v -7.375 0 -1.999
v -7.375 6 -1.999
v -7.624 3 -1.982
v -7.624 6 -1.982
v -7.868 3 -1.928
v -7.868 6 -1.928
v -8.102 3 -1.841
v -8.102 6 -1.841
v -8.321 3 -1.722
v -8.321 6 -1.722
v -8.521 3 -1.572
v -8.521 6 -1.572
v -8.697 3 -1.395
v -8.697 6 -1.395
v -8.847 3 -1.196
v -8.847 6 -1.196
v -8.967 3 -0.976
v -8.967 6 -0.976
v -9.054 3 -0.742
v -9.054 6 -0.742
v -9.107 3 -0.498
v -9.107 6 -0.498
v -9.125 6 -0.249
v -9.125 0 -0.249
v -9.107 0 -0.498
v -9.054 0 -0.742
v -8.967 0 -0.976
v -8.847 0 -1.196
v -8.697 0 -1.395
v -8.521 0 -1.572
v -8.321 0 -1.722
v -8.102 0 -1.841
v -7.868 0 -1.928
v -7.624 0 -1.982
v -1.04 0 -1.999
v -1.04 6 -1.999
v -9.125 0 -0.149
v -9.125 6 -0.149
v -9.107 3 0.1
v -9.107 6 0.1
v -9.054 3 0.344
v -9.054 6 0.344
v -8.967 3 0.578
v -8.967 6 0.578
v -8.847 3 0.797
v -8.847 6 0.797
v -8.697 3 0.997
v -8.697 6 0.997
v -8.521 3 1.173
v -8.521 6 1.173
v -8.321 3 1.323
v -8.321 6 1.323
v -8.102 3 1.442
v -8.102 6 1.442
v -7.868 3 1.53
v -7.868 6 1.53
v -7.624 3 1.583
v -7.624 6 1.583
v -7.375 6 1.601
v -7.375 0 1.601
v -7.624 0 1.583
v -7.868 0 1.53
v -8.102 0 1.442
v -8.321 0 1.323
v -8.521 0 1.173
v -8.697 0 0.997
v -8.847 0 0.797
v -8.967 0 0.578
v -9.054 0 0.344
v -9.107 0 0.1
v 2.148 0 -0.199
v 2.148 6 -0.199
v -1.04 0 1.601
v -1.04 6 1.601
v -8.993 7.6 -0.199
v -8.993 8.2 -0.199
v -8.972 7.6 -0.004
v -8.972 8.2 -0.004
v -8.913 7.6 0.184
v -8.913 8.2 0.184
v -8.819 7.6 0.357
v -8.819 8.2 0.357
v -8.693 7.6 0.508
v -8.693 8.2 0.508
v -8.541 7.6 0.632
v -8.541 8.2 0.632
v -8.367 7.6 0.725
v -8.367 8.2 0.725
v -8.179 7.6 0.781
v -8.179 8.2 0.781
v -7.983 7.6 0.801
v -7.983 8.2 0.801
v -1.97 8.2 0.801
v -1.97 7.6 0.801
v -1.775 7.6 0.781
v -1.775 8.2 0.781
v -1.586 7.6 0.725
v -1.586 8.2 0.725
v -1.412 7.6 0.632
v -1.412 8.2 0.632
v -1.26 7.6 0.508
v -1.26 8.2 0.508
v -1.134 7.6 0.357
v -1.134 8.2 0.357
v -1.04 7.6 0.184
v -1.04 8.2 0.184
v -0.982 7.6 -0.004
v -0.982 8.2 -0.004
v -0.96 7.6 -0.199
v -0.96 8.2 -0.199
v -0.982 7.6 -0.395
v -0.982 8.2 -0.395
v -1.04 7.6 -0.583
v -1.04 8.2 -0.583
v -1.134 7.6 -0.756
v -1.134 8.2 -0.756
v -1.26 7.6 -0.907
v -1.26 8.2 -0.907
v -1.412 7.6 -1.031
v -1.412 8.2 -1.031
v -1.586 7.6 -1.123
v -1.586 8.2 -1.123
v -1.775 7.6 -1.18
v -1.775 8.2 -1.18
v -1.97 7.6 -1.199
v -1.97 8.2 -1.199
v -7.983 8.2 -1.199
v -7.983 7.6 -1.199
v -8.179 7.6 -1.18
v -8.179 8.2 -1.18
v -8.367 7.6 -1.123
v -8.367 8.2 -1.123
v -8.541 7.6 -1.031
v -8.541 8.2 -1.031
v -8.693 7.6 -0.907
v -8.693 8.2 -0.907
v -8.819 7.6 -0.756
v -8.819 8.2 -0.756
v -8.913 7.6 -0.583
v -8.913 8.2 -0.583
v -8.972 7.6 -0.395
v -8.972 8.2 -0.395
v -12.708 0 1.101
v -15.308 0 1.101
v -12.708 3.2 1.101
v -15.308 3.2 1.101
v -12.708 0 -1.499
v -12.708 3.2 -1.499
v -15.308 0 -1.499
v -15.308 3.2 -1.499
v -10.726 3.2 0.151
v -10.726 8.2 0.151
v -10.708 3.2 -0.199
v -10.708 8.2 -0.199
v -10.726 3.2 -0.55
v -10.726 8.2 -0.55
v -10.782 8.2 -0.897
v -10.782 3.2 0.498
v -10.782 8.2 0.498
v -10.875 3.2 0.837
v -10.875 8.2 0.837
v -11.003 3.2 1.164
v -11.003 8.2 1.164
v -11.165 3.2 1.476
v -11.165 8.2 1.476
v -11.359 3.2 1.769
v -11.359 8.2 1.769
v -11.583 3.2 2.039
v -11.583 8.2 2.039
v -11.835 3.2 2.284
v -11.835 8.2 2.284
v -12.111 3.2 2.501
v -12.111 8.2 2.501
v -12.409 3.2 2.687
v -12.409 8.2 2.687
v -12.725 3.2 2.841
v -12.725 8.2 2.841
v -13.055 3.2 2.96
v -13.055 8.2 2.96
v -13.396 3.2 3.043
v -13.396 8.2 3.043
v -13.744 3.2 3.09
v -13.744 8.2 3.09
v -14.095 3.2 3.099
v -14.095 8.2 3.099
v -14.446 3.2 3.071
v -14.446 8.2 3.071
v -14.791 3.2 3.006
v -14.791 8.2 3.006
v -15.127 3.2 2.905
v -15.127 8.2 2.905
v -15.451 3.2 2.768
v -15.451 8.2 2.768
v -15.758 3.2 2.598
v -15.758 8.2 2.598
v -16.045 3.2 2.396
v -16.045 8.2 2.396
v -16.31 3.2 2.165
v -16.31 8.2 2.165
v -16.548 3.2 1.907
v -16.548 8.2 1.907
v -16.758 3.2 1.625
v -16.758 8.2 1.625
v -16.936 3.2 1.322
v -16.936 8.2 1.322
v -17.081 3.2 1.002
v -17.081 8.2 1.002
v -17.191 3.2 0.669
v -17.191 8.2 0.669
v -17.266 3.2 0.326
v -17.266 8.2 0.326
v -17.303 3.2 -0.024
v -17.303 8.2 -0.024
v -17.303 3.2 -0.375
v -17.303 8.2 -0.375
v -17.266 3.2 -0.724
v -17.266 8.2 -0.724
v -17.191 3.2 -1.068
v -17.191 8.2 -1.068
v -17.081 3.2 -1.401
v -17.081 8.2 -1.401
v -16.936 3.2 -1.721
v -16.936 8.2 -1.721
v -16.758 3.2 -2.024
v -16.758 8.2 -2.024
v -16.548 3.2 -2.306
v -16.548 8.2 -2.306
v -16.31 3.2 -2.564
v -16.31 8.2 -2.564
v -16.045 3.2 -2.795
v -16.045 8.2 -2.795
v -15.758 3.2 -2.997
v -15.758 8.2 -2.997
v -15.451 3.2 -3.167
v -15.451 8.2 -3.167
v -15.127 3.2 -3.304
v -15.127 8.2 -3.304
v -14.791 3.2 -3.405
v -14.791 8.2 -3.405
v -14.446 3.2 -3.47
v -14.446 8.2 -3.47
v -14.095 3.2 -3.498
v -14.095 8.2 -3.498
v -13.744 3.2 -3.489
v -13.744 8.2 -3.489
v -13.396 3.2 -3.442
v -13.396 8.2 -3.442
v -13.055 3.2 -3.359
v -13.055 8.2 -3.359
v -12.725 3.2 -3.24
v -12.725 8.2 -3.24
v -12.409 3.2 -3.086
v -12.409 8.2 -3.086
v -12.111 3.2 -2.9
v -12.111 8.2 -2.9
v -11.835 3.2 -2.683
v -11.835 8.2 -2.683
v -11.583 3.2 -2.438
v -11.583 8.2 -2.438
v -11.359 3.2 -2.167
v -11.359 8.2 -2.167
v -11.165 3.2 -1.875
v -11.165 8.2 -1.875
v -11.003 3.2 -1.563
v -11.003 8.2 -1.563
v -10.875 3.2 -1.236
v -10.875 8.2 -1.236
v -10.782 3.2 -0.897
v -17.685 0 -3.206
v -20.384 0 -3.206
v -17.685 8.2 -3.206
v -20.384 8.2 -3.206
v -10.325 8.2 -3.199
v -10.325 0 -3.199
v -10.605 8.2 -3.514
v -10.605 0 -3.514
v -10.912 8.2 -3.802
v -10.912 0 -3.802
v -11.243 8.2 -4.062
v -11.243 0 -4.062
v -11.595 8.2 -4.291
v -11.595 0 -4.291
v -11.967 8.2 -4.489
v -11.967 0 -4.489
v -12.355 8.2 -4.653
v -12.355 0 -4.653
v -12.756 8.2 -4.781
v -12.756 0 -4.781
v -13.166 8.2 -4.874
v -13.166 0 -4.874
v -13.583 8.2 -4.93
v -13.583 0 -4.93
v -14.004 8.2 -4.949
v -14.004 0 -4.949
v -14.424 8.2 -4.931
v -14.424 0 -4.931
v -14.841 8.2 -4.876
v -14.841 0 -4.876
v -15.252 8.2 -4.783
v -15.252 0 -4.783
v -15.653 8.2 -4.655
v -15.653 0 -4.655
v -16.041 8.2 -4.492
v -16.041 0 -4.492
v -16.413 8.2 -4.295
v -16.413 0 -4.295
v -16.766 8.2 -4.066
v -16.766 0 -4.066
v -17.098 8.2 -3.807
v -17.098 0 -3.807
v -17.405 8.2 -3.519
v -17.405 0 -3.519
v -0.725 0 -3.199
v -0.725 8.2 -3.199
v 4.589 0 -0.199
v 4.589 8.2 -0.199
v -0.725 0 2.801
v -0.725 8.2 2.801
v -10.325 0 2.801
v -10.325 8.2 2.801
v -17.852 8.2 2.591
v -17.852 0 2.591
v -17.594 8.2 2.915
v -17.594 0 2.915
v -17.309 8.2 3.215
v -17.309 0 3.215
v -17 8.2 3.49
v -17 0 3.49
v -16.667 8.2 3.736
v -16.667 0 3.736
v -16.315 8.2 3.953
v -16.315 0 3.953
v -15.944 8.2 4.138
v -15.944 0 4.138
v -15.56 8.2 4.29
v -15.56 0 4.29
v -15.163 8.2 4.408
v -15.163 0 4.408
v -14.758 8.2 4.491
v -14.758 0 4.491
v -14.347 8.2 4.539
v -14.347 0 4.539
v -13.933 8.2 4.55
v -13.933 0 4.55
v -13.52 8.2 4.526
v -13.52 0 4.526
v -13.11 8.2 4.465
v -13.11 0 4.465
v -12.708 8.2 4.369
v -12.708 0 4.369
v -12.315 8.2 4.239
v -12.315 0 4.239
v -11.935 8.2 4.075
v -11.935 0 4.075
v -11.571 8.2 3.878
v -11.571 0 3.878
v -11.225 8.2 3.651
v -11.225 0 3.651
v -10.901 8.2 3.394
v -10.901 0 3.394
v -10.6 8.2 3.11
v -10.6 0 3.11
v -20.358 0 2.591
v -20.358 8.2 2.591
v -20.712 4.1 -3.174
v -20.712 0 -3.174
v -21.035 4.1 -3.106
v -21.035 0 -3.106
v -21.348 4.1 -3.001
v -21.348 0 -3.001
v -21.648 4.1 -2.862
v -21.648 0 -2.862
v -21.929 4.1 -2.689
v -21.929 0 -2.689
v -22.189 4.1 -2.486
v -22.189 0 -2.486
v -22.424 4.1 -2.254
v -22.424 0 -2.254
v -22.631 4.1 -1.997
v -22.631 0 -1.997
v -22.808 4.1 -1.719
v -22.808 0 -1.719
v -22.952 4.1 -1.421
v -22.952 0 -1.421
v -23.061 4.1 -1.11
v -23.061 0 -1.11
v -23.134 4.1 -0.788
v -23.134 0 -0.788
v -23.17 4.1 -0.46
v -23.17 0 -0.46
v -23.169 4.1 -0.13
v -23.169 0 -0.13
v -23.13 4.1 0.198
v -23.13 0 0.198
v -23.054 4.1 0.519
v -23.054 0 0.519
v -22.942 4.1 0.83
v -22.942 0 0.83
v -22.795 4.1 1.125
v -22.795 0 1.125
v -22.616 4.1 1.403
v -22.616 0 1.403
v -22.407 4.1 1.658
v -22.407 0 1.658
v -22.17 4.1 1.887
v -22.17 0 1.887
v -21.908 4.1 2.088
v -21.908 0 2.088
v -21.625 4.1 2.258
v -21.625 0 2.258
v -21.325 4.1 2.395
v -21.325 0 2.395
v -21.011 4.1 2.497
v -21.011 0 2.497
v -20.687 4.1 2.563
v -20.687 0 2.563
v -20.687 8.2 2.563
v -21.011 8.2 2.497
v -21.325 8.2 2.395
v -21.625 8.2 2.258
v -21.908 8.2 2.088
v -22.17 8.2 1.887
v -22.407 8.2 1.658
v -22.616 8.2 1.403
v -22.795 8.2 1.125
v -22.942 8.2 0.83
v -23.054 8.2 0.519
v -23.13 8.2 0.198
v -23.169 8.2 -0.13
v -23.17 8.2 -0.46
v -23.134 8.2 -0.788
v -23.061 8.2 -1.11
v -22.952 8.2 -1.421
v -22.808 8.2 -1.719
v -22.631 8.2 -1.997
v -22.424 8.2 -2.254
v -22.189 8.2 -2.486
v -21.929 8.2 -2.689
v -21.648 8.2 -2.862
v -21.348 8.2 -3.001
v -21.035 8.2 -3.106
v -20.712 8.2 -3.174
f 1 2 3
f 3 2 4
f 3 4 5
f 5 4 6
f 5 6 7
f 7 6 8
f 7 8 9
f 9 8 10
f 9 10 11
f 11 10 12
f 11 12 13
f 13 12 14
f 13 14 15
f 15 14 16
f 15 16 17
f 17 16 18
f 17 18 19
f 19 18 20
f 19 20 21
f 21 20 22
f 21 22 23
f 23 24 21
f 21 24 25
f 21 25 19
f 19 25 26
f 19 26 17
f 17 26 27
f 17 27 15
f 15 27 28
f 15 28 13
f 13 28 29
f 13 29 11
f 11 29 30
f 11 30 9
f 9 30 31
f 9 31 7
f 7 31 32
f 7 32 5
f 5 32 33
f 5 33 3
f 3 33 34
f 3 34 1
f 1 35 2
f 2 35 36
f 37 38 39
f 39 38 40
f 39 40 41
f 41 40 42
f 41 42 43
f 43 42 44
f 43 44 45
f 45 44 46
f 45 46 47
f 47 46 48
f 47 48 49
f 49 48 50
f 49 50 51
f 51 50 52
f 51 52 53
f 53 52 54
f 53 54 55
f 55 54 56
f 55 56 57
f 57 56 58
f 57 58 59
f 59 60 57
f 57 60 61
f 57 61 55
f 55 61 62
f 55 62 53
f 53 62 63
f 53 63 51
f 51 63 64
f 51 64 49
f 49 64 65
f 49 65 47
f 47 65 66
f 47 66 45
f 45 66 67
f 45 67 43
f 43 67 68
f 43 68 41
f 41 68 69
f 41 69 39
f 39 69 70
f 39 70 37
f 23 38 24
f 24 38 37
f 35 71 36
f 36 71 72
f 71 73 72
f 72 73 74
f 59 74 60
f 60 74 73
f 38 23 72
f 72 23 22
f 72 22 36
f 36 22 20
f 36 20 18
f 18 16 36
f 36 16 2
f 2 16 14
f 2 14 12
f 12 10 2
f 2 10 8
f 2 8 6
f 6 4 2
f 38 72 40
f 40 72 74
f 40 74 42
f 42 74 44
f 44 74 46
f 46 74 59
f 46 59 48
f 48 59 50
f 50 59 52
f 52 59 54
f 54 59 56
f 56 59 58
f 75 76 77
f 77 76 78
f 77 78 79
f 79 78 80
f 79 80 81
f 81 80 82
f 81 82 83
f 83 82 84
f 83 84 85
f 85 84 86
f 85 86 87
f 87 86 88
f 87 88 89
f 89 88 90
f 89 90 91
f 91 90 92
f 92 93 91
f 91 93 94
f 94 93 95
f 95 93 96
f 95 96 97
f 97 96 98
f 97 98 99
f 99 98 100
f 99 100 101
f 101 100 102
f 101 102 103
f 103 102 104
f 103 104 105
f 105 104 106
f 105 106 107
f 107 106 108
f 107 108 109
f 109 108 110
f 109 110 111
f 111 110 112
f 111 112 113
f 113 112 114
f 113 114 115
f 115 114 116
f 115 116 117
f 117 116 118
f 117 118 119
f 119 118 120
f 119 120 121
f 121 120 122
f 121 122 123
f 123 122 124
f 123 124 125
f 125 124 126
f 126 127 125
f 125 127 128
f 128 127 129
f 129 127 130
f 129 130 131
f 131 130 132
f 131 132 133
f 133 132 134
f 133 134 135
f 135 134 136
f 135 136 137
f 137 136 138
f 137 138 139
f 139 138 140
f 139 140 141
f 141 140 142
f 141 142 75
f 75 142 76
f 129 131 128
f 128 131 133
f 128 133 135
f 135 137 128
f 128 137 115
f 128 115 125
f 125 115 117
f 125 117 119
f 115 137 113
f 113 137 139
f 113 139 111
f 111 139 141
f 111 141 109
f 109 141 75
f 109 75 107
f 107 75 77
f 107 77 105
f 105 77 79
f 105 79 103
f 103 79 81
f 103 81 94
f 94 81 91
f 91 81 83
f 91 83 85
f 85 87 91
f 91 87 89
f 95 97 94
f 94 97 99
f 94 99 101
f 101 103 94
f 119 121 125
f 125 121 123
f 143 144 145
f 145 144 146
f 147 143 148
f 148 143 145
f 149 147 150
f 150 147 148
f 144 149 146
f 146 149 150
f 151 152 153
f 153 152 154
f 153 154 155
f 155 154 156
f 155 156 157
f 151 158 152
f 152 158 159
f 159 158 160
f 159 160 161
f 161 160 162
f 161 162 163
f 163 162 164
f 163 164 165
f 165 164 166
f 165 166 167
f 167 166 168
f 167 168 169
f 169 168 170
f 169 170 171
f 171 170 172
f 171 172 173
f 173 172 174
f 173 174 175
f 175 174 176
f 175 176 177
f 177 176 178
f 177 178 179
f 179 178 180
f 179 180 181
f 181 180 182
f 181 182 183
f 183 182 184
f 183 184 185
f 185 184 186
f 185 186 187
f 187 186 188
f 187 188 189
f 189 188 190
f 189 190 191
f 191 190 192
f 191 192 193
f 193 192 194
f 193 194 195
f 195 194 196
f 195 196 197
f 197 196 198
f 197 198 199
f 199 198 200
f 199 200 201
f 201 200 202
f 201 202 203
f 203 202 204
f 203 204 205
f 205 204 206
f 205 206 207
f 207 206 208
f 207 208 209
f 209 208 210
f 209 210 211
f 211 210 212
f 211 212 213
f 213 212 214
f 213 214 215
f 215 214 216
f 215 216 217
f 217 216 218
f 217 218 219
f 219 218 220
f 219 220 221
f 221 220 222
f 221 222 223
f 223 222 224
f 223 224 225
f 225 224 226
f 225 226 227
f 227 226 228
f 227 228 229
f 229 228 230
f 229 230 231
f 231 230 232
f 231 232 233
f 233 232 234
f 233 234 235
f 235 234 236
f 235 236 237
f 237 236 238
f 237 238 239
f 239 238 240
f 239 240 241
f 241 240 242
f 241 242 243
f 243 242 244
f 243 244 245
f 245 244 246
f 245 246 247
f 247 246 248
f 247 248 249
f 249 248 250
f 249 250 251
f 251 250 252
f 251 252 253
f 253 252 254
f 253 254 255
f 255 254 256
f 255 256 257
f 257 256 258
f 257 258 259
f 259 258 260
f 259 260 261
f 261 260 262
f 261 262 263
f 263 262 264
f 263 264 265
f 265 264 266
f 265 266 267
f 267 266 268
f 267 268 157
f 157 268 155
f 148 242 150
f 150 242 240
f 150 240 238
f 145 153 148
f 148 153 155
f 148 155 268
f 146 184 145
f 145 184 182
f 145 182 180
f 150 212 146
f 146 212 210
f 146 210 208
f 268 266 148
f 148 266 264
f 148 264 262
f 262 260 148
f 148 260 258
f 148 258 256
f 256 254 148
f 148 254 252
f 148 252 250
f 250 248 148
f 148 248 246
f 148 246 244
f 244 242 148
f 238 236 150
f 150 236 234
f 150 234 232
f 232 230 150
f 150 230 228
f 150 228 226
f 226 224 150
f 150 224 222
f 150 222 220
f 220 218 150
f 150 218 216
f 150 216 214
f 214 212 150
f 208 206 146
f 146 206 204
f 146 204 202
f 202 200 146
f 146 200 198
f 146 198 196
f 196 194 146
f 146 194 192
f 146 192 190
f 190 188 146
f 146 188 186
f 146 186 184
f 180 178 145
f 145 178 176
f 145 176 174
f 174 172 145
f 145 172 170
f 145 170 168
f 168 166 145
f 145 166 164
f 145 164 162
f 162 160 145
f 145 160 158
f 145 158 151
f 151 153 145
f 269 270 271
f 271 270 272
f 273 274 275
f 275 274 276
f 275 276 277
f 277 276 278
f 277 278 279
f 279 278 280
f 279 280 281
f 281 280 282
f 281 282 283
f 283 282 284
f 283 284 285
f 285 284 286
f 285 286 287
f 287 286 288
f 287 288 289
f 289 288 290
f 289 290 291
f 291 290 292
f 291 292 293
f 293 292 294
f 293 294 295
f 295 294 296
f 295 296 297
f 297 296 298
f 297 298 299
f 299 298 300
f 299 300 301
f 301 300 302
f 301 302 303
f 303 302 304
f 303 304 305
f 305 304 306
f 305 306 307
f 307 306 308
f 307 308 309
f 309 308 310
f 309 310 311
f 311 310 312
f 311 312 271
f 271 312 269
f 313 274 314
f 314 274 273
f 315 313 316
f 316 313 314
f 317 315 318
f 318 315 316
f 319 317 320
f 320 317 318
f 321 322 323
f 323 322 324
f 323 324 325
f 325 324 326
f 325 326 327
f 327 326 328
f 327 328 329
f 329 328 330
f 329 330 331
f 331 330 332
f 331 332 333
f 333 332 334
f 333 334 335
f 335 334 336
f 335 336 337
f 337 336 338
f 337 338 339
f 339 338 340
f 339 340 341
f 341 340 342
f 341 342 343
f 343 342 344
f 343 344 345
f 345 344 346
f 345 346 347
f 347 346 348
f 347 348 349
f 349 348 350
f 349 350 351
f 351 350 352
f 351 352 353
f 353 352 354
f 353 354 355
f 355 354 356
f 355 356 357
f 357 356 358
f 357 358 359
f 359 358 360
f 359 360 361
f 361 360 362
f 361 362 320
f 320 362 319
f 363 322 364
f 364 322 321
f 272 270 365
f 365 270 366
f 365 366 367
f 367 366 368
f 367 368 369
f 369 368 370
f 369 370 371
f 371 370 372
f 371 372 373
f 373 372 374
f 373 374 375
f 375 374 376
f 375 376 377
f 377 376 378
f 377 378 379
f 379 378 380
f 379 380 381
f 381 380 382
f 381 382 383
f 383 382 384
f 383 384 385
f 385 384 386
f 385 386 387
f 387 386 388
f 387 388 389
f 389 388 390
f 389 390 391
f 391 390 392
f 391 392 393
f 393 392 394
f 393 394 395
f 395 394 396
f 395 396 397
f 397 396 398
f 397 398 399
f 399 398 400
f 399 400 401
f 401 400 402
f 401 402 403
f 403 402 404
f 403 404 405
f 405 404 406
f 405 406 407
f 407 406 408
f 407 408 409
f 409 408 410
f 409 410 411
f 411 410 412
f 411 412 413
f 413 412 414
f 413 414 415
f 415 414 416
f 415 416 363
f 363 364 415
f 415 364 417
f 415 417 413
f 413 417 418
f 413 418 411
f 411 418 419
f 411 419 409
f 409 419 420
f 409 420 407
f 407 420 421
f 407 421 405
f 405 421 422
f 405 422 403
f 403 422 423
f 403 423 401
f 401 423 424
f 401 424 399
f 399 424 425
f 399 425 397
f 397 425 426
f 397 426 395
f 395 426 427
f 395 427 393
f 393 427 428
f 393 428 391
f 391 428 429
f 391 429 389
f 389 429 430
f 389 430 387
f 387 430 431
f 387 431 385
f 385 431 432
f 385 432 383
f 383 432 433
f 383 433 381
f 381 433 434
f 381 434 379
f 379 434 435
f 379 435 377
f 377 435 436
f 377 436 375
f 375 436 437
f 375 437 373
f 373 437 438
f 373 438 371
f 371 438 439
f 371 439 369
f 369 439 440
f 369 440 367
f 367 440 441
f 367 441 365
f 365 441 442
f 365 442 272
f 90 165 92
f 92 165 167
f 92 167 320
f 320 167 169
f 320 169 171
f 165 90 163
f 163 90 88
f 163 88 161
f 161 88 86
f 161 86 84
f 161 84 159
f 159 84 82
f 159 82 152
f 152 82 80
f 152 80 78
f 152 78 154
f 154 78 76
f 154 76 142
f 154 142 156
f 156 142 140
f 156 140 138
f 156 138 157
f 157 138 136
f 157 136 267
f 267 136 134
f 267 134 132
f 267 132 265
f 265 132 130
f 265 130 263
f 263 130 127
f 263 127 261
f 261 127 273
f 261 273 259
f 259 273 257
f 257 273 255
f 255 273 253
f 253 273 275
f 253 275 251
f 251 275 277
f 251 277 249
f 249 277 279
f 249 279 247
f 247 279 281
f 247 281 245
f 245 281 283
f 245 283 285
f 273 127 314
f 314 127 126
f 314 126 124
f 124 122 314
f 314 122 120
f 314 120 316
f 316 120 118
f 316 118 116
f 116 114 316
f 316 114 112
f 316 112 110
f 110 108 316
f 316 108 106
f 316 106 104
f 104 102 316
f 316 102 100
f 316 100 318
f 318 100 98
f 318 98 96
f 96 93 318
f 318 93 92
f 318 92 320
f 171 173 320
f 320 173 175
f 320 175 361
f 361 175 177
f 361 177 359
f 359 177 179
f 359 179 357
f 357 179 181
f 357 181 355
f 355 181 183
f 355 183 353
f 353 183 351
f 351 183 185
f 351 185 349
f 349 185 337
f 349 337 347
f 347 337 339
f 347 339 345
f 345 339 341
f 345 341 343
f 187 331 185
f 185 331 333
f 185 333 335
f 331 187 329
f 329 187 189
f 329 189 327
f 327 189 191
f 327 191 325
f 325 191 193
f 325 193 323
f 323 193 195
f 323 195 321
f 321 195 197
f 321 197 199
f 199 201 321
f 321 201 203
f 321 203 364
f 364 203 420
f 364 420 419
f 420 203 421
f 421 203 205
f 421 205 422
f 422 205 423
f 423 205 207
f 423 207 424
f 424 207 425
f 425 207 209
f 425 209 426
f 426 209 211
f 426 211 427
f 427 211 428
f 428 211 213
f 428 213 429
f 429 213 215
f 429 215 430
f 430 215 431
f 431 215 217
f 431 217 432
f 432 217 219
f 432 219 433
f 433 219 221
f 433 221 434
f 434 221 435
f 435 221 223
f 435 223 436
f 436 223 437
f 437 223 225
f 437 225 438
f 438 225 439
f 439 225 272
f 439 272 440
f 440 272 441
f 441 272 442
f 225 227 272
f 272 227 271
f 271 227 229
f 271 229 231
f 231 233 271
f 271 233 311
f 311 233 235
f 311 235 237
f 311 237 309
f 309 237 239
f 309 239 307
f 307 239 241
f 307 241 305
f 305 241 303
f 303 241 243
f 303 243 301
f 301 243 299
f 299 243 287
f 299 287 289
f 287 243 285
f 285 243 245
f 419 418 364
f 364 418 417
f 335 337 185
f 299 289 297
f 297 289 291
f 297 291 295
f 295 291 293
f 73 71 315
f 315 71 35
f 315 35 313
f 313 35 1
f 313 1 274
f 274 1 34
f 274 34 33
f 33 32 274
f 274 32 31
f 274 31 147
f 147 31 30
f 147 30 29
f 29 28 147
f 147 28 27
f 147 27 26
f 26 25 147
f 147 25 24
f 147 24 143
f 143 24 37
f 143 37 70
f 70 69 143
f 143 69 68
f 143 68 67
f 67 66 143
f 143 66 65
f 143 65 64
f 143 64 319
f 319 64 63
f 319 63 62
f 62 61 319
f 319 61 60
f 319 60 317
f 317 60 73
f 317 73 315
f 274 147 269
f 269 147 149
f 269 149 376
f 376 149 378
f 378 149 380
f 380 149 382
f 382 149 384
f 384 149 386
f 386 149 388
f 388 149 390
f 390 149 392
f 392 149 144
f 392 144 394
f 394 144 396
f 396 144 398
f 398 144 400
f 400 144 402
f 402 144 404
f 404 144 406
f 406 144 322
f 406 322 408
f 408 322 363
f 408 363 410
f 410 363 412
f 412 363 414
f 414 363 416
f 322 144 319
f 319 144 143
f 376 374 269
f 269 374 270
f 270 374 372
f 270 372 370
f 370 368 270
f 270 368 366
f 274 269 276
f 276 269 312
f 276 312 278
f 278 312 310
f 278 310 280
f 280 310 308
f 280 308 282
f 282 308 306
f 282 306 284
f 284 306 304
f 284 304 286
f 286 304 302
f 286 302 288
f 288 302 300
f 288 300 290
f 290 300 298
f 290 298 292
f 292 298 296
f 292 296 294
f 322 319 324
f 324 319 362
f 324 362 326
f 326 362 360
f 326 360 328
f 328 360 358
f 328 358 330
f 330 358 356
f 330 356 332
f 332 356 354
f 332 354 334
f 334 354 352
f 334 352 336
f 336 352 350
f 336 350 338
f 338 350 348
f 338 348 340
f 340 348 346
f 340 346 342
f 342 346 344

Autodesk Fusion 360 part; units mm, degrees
sketch "Sketch1" plane through (0, 0, 0) normal (0, 1, 0) x (1, 0, 0)
  line L0 (-20.3838, 3.2056) -> (-17.6853, 3.2056)
  line L1 (-20.3584, -2.5911) -> (-17.8516, -2.5911)
  line L2 (-10.3249, 3.1994) -> (-0.7249, 3.1994)
  line L3 (-0.7249, 3.1994) -> (4.589, 0.1994)
  line L4 (4.589, 0.1994) -> (-0.7249, -2.8006)
  line L5 (-0.7249, -2.8006) -> (-10.3249, -2.8006)
  arc A0 (-20.1646, 3.2056) -> (-20.19, -2.5911) centre (-20.2742, 0.3077) ccw
  arc A1 (-10.3249, 3.1994) -> (-17.6853, 3.2056) centre (-14.0077, 0.1994) ccw
  arc A2 (-17.8516, -2.5911) -> (-10.3249, -2.8006) centre (-14.0077, 0.1994) ccw
  line L6 (-22.911, 1.5149) -> (3.7873, -2.43) construction
  dimension "d1" = 5.8
  dimension "d2" = 9.5
  dimension "d4" = 27.5
  dimension "d32" = 6
  dimension "d33" = 9.6
  dimension "d34" = 9
extrude "Extrude1" add sketch "Sketch1" along normal blind 8.2
sketch "Sketch2" plane through (0, 8.2, 0) normal (0, 1, 0) x (-1, 0, 0)
  arc A0 (20.3838, -3.2056) -> (20.3584, 2.5911) centre (20.2742, -0.3077) ccw
  line L0 (20.3584, 2.5911) -> (17.8516, 2.5911)
  arc A1 (17.8516, 2.5911) -> (10.3249, 2.8006) centre (14.0077, -0.1994) ccw
  line L1 (10.3249, 2.8006) -> (0.7249, 2.8006)
  line L2 (0.7249, 2.8006) -> (-4.589, -0.1994)
  line L3 (-4.589, -0.1994) -> (0.7249, -3.1994)
  line L4 (0.7249, -3.1994) -> (10.3249, -3.1994)
  arc A2 (10.3249, -3.1994) -> (17.6853, -3.2056) centre (14.0077, -0.1994) ccw
  line L5 (17.6853, -3.2056) -> (20.3838, -3.2056)
  circle A3 centre (14.0077, -0.1994) radius 3.3
  dimension "d9" = 6.6
extrude "Extrude2" cut sketch "Sketch2" against normal blind 5 contours A3
sketch "Sketch3" plane through (0, 3.2, 0) normal (0, 1, 0) x (-1, 0, 0)
  circle A0 centre (14.0077, -0.1994) radius 3.3
  line L0 (12.7077, -1.4994) -> (15.3077, -1.4994)
  line L1 (15.3077, -1.4994) -> (15.3077, 1.1006)
  line L2 (15.3077, 1.1006) -> (12.7077, 1.1006)
  line L3 (12.7077, 1.1006) -> (12.7077, -1.4994)
  line L4 (12.7077, -1.4994) -> (15.3077, 1.1006) construction
  line L5 (15.3077, -1.4994) -> (12.7077, 1.1006) construction
  point P0 (14.0077, -0.1994)
  dimension "d12" = 2.6
extrude "Extrude3" cut sketch "Sketch3" against normal blind 13 contours L0 L1 L2 L3
sketch "Sketch6" plane through (0, 8.2, 0) normal (0, 1, 0) x (-1, 0, 0)
  circle A0 centre (14.0077, -0.1994) radius 3.3
  arc A1 (20.3838, -3.2056) -> (20.3584, 2.5911) centre (20.2742, -0.3077) ccw
  line L0 (20.3584, 2.5911) -> (17.8516, 2.5911)
  arc A2 (17.8516, 2.5911) -> (10.3249, 2.8006) centre (14.0077, -0.1994) ccw
  line L1 (10.3249, 2.8006) -> (0.7249, 2.8006)
  line L2 (0.7249, 2.8006) -> (-4.589, -0.1994)
  line L3 (-4.589, -0.1994) -> (0.7249, -3.1994)
  line L4 (0.7249, -3.1994) -> (10.3249, -3.1994)
  arc A3 (10.3249, -3.1994) -> (17.6853, -3.2056) centre (14.0077, -0.1994) ccw
  line L5 (17.6853, -3.2056) -> (20.3838, -3.2056)
  line L6 (-0.0396, -2.1994) -> (9.9928, -2.1994) construction
  line L7 (9.9928, -2.1994) -> (9.9928, 1.8006) construction
  line L8 (9.9928, 1.8006) -> (-0.0396, 1.8006) construction
  line L9 (-0.0396, 1.8006) -> (-0.0396, -2.1994) construction
  line L10 (-0.0396, -2.1994) -> (9.9928, 1.8006) construction
  line L11 (9.9928, -2.1994) -> (-0.0396, 1.8006) construction
  line L12 (7.9828, 0.8006) -> (1.9704, 0.8006)
  line L13 (0.9604, -0.2094) -> (0.9604, -0.1894)
  line L14 (1.9704, -1.1994) -> (7.9828, -1.1994)
  line L15 (8.9928, -0.1894) -> (8.9928, -0.2094)
  arc A4 (0.9604, -0.1894) -> (1.9704, -1.1994) centre (1.9704, -0.1894) ccw
  arc A5 (1.9704, 0.8006) -> (0.9604, -0.2094) centre (1.9704, -0.2094) ccw
  arc A6 (8.9928, -0.2094) -> (7.9828, 0.8006) centre (7.9828, -0.2094) ccw
  arc A7 (7.9828, -1.1994) -> (8.9928, -0.1894) centre (7.9828, -0.1894) ccw
  line L16 (-4.589, -0.1994) -> (8.9928, -0.1994) construction
  line L17 (9.9928, -0.1994) -> (23.1722, -0.1994) construction
  point P0 (4.9766, -0.1994)
  dimension "d28" = 1.01
  dimension "d29" = 2
extrude "Extrude4" cut sketch "Sketch6" against normal blind 0.6 contours L12 L13 L14 L15 A4 A5 A6 A7
sketch "Sketch9" plane through (0, 0, 0) normal (0, -1, 0) x (1, 0, 0)
  line L0 (-12.7077, -1.4994) -> (-15.3077, -1.4994)
  line L1 (-15.3077, -1.4994) -> (-15.3077, 1.1006)
  line L2 (-15.3077, 1.1006) -> (-12.7077, 1.1006)
  line L3 (-12.7077, 1.1006) -> (-12.7077, -1.4994)
  arc A0 (-20.3584, 2.5911) -> (-20.3838, -3.2056) centre (-20.2742, -0.3077) ccw
  line L4 (-20.3838, -3.2056) -> (-17.6853, -3.2056)
  arc A1 (-17.6853, -3.2056) -> (-10.3249, -3.1994) centre (-14.0077, -0.1994) ccw
  line L5 (-10.3249, -3.1994) -> (-0.7249, -3.1994)
  line L6 (-0.7249, -3.1994) -> (4.589, -0.1994)
  line L7 (4.589, -0.1994) -> (-0.7249, 2.8006)
  line L8 (-0.7249, 2.8006) -> (-10.3249, 2.8006)
  arc A2 (-10.3249, 2.8006) -> (-17.8516, 2.5911) centre (-14.0077, -0.1994) ccw
  line L9 (-17.8516, 2.5911) -> (-20.3584, 2.5911)
  line L10 (-0.7249, -3.1994) -> (-10.3249, -3.1994)
  line L11 (-10.3249, 2.8006) -> (-0.7249, 2.8006)
  line L12 (-0.7249, 2.8006) -> (4.589, -0.1994)
  line L13 (4.589, -0.1994) -> (-0.7249, -3.1994)
  line L14 (-10.3249, -3.1994) -> (-10.3249, 2.8006) construction
  line L15 (-1.0403, -1.9994) -> (2.1481, -0.1994)
  line L16 (2.1481, -0.1994) -> (-1.0403, 1.6006)
  line L17 (-1.0403, 1.6006) -> (-9.1249, 1.6006)
  line L18 (-9.1249, -1.9994) -> (-9.1249, 1.6006)
  line L19 (-9.1249, -1.9994) -> (-1.0403, -1.9994)
  point P0 (-10.3249, -3.1994)
  point P1 (-0.7249, -3.1994)
  point P2 (4.589, -0.1994)
  point P3 (-0.7249, 2.8006)
  point P4 (-10.3249, 2.8006)
  dimension "d35" = -1.2
extrude "Extrude5" cut sketch "Sketch9" against normal blind 6 contours L15 L16 L17 L18 L19
fillet "Fillet1" radius 1.75 2 edges at (-9.1249, 3, 1.6006) (-9.1249, 3, -1.9994)
